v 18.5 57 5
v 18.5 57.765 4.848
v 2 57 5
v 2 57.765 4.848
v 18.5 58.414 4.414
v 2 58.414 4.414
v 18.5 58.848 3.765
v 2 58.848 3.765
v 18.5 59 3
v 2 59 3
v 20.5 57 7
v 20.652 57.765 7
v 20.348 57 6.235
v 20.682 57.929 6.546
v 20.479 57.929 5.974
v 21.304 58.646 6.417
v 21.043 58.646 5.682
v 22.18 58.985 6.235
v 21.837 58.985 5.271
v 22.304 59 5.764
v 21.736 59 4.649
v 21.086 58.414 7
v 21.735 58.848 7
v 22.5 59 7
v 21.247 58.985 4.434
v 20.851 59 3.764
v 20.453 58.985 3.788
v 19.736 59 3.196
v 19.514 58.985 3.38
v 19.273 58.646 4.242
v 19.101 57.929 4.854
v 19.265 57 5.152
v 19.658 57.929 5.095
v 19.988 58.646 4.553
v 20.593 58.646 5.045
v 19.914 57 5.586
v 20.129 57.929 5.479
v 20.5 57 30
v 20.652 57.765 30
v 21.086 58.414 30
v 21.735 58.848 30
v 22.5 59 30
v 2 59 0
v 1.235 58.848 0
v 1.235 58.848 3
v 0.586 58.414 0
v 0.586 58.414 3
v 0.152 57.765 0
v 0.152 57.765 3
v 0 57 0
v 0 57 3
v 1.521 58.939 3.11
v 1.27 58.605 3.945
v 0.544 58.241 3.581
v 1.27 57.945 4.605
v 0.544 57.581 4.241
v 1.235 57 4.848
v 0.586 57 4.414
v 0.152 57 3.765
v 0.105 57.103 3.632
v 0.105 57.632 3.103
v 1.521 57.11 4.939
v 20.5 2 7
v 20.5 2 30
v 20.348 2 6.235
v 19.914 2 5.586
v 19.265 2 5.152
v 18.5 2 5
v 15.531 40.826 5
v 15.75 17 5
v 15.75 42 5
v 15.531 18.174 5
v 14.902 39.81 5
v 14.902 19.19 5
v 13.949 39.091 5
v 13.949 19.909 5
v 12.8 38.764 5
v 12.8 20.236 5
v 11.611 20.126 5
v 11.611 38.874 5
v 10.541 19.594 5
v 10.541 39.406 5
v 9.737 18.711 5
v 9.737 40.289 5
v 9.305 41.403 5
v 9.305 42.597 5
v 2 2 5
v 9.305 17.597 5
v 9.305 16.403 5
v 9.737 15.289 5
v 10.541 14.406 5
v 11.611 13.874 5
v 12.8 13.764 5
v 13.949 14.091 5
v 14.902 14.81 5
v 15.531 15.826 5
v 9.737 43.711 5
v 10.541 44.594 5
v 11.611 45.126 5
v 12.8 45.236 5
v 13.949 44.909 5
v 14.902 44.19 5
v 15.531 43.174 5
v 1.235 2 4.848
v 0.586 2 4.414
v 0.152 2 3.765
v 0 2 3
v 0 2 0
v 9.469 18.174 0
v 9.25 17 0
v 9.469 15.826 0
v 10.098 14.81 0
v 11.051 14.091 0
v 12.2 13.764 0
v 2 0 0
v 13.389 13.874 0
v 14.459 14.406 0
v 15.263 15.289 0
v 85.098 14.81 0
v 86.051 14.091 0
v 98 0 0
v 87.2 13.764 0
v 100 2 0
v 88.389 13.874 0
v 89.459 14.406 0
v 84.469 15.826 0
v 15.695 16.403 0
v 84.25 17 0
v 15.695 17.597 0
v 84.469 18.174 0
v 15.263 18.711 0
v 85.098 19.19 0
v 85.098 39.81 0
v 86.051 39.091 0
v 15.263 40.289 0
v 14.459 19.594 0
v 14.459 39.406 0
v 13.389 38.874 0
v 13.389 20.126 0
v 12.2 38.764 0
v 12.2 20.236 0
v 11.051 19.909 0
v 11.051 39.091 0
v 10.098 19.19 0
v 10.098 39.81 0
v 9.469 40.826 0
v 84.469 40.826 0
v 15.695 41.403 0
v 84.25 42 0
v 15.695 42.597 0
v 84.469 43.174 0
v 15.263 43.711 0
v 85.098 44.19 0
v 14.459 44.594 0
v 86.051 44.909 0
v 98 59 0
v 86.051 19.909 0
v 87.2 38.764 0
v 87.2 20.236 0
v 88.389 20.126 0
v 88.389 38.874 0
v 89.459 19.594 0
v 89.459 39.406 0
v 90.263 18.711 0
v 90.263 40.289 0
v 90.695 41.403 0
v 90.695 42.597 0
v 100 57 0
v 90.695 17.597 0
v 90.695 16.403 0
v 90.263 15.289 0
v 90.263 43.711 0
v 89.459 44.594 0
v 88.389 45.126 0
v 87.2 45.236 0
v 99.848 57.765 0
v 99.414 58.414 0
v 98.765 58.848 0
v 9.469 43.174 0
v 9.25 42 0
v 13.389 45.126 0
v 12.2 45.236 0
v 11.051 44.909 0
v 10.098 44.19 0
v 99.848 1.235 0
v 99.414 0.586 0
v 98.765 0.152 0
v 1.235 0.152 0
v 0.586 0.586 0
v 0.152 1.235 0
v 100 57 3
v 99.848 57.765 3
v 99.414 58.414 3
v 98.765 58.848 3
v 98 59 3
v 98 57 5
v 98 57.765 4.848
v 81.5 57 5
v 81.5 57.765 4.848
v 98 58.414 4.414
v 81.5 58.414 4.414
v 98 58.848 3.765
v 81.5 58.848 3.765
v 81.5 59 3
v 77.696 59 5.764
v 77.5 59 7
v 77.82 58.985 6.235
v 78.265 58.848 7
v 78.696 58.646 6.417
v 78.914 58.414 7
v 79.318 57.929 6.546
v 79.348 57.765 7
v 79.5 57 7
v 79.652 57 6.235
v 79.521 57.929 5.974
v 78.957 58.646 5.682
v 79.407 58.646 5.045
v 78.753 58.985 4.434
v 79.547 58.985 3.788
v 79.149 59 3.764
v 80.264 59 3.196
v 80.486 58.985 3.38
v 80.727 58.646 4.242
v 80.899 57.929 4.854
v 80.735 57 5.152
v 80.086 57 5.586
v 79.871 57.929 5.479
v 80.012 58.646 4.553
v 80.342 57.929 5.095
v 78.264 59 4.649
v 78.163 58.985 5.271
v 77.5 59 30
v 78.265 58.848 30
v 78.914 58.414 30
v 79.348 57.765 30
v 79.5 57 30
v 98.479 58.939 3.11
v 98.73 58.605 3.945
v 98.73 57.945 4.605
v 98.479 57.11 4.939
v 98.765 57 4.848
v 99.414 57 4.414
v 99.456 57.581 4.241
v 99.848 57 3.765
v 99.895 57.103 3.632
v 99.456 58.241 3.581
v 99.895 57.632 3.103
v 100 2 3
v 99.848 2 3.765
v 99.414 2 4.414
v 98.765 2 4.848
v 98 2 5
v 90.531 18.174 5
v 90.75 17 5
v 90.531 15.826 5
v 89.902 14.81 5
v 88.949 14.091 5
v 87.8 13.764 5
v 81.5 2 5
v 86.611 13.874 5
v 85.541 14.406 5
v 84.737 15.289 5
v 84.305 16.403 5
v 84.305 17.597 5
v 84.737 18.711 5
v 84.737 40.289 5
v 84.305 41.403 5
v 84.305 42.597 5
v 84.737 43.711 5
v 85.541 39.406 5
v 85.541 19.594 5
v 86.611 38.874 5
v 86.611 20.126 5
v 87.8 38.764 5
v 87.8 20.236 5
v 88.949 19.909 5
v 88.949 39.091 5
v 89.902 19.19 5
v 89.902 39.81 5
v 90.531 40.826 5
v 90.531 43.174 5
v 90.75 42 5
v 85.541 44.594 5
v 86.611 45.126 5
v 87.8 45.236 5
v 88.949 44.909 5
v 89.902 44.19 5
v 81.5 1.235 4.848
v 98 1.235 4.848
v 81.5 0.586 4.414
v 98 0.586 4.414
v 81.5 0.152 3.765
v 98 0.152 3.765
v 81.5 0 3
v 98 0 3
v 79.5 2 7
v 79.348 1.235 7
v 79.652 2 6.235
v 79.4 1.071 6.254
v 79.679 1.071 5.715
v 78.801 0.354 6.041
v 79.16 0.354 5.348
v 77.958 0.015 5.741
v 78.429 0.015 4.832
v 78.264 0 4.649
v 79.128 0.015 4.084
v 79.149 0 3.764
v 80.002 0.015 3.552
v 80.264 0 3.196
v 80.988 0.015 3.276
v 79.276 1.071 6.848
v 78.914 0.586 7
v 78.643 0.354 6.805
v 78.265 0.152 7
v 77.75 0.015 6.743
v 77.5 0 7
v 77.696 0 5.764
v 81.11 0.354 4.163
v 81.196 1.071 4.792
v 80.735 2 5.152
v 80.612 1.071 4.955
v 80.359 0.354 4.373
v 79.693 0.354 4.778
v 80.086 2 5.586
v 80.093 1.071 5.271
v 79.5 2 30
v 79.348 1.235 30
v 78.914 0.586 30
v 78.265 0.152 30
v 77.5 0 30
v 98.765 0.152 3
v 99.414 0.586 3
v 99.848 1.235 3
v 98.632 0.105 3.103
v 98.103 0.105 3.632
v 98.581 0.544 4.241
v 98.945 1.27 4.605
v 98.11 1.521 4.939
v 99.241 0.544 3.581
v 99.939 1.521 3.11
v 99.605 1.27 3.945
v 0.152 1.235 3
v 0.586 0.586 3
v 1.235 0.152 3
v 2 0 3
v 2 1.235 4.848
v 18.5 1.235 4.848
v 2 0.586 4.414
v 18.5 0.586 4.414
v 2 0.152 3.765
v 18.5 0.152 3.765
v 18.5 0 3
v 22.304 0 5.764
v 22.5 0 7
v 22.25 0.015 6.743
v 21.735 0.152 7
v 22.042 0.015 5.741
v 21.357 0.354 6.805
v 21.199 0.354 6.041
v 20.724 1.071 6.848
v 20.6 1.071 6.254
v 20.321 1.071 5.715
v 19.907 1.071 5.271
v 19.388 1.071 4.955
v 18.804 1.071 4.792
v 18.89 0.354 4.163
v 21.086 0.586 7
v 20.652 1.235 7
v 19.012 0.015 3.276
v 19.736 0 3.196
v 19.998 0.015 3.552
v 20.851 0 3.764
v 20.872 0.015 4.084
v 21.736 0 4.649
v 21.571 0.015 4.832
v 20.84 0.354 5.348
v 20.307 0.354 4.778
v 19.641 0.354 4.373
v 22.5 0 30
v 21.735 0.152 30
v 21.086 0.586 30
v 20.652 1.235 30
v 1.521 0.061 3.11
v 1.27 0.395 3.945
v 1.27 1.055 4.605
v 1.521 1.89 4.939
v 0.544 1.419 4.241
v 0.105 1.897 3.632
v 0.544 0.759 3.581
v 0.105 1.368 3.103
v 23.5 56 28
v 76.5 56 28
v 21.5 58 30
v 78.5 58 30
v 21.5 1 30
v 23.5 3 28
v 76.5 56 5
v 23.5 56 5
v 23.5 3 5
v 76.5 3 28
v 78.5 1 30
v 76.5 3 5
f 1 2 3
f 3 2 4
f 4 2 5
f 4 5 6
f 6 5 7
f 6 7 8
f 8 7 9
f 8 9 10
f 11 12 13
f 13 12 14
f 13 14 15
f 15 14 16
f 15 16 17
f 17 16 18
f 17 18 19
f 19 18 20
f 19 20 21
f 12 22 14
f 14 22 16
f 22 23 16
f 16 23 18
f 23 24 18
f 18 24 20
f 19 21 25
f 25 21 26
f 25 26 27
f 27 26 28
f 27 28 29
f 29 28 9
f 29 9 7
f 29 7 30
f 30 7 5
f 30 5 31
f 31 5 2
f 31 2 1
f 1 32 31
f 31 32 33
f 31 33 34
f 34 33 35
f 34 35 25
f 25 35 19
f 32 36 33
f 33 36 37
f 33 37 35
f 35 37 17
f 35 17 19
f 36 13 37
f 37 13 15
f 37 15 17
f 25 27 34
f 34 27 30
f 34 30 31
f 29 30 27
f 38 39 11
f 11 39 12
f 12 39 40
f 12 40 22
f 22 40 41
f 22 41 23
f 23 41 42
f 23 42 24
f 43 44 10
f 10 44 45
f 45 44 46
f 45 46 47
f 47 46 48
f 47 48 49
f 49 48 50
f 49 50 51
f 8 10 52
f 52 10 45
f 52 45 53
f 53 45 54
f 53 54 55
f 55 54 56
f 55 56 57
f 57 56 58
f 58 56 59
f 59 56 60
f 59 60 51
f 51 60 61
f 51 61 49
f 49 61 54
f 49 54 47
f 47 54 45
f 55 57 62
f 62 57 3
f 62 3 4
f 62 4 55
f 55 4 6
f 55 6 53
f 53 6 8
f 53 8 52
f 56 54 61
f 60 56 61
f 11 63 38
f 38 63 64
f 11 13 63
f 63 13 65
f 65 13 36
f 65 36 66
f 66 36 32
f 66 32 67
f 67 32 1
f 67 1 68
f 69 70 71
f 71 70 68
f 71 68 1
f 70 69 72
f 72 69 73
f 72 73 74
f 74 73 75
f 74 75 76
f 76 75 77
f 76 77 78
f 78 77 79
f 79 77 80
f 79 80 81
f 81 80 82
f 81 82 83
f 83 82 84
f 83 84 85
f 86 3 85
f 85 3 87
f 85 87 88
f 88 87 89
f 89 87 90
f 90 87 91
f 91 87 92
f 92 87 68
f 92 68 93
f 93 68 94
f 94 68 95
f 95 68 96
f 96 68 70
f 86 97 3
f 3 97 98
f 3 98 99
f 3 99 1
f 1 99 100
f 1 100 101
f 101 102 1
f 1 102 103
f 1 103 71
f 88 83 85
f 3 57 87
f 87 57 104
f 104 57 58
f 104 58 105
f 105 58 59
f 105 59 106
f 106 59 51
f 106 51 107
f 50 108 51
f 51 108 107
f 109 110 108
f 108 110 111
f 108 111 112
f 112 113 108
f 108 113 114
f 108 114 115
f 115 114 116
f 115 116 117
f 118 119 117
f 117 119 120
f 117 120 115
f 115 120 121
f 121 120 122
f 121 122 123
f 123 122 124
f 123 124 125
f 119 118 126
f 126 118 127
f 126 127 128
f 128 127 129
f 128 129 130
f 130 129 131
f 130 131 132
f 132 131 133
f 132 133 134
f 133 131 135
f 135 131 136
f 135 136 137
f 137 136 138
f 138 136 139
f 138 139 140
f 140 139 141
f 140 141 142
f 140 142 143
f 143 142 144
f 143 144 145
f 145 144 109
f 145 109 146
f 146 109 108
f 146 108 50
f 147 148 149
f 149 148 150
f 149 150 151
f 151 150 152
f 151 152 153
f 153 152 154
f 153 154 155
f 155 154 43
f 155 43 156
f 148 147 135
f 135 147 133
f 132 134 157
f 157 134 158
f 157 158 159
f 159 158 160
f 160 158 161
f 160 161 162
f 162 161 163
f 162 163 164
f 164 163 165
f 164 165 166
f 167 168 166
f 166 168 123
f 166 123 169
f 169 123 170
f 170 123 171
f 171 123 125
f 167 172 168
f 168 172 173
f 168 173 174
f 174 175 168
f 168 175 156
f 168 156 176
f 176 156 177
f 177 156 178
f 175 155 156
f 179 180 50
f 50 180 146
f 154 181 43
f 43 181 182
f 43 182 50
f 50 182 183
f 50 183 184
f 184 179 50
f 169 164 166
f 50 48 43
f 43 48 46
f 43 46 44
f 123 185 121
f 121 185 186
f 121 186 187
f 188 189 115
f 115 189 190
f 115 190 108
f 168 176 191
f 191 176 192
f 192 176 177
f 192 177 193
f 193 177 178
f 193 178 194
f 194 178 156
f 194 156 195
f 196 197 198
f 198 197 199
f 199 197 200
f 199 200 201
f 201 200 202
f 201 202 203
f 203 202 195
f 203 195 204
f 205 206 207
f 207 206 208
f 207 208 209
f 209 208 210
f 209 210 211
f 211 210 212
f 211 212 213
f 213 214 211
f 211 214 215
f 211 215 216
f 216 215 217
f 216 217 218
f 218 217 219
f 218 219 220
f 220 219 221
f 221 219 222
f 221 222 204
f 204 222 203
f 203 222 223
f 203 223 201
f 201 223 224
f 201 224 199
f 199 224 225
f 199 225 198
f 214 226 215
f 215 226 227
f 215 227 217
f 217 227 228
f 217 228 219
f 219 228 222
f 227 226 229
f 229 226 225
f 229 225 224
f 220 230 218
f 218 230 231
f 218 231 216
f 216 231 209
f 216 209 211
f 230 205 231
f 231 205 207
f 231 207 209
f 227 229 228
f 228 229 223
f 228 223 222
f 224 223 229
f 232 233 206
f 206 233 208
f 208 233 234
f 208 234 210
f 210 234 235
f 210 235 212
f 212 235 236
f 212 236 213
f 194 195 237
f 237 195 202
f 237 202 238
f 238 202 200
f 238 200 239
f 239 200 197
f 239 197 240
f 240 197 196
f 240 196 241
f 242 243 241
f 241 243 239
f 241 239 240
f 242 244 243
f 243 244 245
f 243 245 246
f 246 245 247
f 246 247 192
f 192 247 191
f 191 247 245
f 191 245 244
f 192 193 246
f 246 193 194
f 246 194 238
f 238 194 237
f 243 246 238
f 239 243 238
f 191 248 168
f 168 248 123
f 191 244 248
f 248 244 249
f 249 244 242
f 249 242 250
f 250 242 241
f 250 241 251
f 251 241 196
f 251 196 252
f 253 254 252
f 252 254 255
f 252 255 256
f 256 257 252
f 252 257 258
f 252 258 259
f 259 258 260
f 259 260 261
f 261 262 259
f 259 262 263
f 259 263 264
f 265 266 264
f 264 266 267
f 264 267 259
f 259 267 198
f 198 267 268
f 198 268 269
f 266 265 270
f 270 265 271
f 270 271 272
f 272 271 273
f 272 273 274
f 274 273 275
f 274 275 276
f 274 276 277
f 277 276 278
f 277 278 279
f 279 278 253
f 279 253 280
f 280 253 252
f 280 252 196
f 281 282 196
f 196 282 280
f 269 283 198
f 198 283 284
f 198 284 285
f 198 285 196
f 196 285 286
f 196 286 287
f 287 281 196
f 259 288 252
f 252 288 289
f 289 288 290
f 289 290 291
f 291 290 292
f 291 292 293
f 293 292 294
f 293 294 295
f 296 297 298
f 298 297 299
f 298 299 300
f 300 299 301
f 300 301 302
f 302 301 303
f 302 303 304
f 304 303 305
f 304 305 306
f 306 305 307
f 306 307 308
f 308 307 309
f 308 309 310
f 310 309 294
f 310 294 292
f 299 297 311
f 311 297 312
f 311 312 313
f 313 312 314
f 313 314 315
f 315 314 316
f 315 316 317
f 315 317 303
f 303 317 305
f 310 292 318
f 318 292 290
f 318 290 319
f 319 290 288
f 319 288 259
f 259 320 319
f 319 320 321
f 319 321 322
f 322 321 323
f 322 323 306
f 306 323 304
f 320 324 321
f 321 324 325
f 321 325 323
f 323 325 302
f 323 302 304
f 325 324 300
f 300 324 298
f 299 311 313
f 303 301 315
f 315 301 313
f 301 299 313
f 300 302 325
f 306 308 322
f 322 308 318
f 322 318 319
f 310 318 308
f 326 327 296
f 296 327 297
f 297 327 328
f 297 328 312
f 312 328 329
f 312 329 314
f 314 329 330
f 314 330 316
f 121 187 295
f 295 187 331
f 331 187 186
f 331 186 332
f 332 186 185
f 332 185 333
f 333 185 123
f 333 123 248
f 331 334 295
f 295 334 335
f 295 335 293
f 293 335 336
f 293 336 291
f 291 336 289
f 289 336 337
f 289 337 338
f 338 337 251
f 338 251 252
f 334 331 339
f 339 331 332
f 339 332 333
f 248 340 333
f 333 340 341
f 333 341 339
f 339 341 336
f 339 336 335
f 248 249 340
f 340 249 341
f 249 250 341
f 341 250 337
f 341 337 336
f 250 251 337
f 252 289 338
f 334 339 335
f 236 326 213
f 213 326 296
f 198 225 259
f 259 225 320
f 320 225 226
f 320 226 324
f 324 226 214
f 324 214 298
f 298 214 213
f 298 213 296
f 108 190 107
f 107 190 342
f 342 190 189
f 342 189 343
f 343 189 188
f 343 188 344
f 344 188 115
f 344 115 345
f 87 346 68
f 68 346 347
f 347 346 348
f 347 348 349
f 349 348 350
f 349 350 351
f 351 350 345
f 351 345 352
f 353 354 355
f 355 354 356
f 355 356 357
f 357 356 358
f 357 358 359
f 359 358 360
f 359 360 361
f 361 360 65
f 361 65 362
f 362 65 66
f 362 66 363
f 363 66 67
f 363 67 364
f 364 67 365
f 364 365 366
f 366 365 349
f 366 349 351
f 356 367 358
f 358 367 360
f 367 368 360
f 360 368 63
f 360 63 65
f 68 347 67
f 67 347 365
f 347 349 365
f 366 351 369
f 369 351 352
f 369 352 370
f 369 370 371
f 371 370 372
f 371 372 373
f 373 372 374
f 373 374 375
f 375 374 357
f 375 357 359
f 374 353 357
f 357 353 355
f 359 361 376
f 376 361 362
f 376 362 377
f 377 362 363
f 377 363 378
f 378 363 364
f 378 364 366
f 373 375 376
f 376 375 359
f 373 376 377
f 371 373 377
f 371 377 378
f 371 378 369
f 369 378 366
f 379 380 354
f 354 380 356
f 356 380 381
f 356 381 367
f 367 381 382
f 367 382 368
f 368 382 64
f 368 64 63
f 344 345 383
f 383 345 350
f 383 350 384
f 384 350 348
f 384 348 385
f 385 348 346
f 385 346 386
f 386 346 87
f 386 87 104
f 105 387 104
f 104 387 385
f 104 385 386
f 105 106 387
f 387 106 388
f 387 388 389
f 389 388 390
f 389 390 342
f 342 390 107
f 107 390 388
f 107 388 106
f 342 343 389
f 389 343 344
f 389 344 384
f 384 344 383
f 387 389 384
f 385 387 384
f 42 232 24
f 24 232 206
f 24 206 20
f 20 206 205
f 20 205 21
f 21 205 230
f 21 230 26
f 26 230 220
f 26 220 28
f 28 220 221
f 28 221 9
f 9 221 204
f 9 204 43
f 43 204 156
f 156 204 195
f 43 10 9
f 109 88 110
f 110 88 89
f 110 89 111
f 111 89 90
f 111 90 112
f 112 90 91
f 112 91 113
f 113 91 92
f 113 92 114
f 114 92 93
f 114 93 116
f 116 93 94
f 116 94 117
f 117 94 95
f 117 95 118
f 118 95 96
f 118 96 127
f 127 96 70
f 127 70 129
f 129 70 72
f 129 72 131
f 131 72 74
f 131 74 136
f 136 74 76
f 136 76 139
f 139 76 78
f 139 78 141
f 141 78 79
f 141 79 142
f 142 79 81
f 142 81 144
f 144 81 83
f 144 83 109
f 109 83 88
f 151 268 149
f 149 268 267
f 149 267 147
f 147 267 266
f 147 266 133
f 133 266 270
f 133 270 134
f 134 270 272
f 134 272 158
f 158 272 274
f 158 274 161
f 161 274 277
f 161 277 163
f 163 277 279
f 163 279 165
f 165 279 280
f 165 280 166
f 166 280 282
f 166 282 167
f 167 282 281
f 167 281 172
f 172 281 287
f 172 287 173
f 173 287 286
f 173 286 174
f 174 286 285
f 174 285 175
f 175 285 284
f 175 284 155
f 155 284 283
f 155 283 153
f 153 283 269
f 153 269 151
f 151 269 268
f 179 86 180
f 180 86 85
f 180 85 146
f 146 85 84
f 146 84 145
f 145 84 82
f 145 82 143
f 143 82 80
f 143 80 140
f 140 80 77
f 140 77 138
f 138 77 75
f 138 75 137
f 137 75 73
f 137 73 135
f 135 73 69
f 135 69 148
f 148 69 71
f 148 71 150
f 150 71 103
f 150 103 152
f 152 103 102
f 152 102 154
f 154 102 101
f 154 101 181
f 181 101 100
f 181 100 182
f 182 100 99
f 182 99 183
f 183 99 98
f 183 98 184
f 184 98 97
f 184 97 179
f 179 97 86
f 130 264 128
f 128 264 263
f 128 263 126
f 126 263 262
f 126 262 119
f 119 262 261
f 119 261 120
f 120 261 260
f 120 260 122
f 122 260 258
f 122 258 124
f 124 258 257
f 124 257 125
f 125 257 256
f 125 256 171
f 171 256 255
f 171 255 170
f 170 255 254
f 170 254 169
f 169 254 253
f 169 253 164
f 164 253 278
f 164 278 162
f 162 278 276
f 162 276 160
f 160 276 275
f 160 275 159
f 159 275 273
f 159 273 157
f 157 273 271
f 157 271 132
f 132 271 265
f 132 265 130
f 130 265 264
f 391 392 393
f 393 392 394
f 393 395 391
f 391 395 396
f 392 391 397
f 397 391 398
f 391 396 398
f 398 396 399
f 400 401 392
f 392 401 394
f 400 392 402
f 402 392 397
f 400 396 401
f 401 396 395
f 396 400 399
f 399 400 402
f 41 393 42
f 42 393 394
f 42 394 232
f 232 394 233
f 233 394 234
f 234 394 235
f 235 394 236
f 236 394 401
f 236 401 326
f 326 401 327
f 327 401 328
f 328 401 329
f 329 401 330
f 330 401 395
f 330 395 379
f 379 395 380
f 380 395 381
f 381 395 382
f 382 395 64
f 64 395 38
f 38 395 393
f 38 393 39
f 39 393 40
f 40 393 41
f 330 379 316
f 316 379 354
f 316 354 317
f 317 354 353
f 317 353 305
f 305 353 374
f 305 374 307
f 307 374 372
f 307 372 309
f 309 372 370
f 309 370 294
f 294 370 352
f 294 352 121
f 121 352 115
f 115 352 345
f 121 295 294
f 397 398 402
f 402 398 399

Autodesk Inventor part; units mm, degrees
ref_plane "YZ Plane" through (0, 0, 0) normal (1, 0, 0) x (0, 1, 0)
ref_plane "XZ Plane" through (0, 0, 0) normal (0, 1, 0) x (-1, 0, 0)
ref_plane "XY Plane" through (0, 0, 0) normal (0, 0, 1) x (1, 0, 0)
sketch "Sketch1" plane through (0, 0, 0) normal (0, 0, 1) x (1, 0, 0)
  line L0 (0, 0) -> (100, 0)
  line L1 (100, 0) -> (100, 59)
  line L2 (100, 59) -> (0, 59)
  line L3 (0, 59) -> (0, 0)
  dimension "d0" = 100
  dimension "d1" = 59
extrude "Extrusion1" add sketch "Sketch1" along normal blind 5
sketch "Sketch2" plane through (0, 0, 5) normal (0, 0, 1) x (1, 0, 0)
  line L0 (0, 0) -> (100, 0) projected
  line L1 (100, 59) -> (0, 59) projected
  line L2 (79.5, 0) -> (20.5, 0)
  line L3 (20.5, 0) -> (20.5, 59)
  line L4 (20.5, 59) -> (79.5, 59)
  line L5 (79.5, 59) -> (79.5, 0)
  line L6 (76.5, 3) -> (23.5, 3)
  line L7 (23.5, 3) -> (23.5, 56)
  line L8 (23.5, 56) -> (76.5, 56)
  line L9 (76.5, 56) -> (76.5, 3)
  line L10 (100, 0) -> (100, 59) projected
  point P0 (79.5, 59)
  point P1 (20.5, 0)
  dimension "d4" = 59
  dimension "d5" = 53
  dimension "d6" = 3
  dimension "d7" = 3
  dimension "d8" = 3
  dimension "d9" = 20.5
extrude "Extrusion2" add sketch "Sketch2" along normal blind 25 contours L3 L1 L5 L0
chamfer "Chamfer1" distance 2 angle 45 1 edges at (50, 3, 30)
chamfer "Chamfer2" distance 2 angle 45 1 edges at (76.5, 29.5, 30)
chamfer "Chamfer3" distance 2 angle 45 2 edges at (50, 56, 30) (23.5, 29.5, 30)
sketch "Sketch3" plane through (0, 0, 5) normal (0, 0, 1) x (1, 0, 0)
  circle A0 centre (87.5, 17) radius 3.25
  circle A1 centre (87.5, 42) radius 3.25
  line L0 (100, 0) -> (100, 59) projected
  line L1 (0, 0) -> (100, 0) projected
  line L2 (50, -16.6248) -> (50, 70.7208)
  line L3 (0, 59) -> (0, 0) projected
  circle A2 centre (12.5, 17) radius 3.25
  circle A3 centre (12.5, 42) radius 3.25
  point P0 (79.5, 0)
  dimension "d21" = 6.5
  dimension "d22" = 6.5
  dimension "d23" = 12.5
  dimension "d24" = 12.5
  dimension "d25" = 25
  dimension "d26" = 17
  dimension "d27" = 50
extrude "Extrusion3" cut sketch "Sketch3" against normal blind 60
fillet "Fillet1" radius 2 2 edges at (20.5, 29.5, 5) (79.5, 29.5, 5)
fillet "Fillet2" radius 2 2 edges at (0, 29.5, 5) (100, 29.5, 5)
fillet "Fillet3" radius 2 20 edges at (20.5, 0, 18.5) (19.9142, 0, 5.5858) (10.25, 0, 5) (0.5858, 0, 4.4142) (0, 0, 1.5) (79.5, 0, 18.5) (80.0858, 0, 5.5858) (89.75, 0, 5) (99.4142, 0, 4.4142) (100, 0, 1.5) (79.5, 59, 18.5) (80.0858, 59, 5.5858) (89.75, 59, 5) (99.4142, 59, 4.4142) (100, 59, 1.5) (20.5, 59, 18.5) (19.9142, 59, 5.5858) (10.25, 59, 5) (0.5858, 59, 4.4142) (0, 59, 1.5)
properties part number "trypsinHolder"
